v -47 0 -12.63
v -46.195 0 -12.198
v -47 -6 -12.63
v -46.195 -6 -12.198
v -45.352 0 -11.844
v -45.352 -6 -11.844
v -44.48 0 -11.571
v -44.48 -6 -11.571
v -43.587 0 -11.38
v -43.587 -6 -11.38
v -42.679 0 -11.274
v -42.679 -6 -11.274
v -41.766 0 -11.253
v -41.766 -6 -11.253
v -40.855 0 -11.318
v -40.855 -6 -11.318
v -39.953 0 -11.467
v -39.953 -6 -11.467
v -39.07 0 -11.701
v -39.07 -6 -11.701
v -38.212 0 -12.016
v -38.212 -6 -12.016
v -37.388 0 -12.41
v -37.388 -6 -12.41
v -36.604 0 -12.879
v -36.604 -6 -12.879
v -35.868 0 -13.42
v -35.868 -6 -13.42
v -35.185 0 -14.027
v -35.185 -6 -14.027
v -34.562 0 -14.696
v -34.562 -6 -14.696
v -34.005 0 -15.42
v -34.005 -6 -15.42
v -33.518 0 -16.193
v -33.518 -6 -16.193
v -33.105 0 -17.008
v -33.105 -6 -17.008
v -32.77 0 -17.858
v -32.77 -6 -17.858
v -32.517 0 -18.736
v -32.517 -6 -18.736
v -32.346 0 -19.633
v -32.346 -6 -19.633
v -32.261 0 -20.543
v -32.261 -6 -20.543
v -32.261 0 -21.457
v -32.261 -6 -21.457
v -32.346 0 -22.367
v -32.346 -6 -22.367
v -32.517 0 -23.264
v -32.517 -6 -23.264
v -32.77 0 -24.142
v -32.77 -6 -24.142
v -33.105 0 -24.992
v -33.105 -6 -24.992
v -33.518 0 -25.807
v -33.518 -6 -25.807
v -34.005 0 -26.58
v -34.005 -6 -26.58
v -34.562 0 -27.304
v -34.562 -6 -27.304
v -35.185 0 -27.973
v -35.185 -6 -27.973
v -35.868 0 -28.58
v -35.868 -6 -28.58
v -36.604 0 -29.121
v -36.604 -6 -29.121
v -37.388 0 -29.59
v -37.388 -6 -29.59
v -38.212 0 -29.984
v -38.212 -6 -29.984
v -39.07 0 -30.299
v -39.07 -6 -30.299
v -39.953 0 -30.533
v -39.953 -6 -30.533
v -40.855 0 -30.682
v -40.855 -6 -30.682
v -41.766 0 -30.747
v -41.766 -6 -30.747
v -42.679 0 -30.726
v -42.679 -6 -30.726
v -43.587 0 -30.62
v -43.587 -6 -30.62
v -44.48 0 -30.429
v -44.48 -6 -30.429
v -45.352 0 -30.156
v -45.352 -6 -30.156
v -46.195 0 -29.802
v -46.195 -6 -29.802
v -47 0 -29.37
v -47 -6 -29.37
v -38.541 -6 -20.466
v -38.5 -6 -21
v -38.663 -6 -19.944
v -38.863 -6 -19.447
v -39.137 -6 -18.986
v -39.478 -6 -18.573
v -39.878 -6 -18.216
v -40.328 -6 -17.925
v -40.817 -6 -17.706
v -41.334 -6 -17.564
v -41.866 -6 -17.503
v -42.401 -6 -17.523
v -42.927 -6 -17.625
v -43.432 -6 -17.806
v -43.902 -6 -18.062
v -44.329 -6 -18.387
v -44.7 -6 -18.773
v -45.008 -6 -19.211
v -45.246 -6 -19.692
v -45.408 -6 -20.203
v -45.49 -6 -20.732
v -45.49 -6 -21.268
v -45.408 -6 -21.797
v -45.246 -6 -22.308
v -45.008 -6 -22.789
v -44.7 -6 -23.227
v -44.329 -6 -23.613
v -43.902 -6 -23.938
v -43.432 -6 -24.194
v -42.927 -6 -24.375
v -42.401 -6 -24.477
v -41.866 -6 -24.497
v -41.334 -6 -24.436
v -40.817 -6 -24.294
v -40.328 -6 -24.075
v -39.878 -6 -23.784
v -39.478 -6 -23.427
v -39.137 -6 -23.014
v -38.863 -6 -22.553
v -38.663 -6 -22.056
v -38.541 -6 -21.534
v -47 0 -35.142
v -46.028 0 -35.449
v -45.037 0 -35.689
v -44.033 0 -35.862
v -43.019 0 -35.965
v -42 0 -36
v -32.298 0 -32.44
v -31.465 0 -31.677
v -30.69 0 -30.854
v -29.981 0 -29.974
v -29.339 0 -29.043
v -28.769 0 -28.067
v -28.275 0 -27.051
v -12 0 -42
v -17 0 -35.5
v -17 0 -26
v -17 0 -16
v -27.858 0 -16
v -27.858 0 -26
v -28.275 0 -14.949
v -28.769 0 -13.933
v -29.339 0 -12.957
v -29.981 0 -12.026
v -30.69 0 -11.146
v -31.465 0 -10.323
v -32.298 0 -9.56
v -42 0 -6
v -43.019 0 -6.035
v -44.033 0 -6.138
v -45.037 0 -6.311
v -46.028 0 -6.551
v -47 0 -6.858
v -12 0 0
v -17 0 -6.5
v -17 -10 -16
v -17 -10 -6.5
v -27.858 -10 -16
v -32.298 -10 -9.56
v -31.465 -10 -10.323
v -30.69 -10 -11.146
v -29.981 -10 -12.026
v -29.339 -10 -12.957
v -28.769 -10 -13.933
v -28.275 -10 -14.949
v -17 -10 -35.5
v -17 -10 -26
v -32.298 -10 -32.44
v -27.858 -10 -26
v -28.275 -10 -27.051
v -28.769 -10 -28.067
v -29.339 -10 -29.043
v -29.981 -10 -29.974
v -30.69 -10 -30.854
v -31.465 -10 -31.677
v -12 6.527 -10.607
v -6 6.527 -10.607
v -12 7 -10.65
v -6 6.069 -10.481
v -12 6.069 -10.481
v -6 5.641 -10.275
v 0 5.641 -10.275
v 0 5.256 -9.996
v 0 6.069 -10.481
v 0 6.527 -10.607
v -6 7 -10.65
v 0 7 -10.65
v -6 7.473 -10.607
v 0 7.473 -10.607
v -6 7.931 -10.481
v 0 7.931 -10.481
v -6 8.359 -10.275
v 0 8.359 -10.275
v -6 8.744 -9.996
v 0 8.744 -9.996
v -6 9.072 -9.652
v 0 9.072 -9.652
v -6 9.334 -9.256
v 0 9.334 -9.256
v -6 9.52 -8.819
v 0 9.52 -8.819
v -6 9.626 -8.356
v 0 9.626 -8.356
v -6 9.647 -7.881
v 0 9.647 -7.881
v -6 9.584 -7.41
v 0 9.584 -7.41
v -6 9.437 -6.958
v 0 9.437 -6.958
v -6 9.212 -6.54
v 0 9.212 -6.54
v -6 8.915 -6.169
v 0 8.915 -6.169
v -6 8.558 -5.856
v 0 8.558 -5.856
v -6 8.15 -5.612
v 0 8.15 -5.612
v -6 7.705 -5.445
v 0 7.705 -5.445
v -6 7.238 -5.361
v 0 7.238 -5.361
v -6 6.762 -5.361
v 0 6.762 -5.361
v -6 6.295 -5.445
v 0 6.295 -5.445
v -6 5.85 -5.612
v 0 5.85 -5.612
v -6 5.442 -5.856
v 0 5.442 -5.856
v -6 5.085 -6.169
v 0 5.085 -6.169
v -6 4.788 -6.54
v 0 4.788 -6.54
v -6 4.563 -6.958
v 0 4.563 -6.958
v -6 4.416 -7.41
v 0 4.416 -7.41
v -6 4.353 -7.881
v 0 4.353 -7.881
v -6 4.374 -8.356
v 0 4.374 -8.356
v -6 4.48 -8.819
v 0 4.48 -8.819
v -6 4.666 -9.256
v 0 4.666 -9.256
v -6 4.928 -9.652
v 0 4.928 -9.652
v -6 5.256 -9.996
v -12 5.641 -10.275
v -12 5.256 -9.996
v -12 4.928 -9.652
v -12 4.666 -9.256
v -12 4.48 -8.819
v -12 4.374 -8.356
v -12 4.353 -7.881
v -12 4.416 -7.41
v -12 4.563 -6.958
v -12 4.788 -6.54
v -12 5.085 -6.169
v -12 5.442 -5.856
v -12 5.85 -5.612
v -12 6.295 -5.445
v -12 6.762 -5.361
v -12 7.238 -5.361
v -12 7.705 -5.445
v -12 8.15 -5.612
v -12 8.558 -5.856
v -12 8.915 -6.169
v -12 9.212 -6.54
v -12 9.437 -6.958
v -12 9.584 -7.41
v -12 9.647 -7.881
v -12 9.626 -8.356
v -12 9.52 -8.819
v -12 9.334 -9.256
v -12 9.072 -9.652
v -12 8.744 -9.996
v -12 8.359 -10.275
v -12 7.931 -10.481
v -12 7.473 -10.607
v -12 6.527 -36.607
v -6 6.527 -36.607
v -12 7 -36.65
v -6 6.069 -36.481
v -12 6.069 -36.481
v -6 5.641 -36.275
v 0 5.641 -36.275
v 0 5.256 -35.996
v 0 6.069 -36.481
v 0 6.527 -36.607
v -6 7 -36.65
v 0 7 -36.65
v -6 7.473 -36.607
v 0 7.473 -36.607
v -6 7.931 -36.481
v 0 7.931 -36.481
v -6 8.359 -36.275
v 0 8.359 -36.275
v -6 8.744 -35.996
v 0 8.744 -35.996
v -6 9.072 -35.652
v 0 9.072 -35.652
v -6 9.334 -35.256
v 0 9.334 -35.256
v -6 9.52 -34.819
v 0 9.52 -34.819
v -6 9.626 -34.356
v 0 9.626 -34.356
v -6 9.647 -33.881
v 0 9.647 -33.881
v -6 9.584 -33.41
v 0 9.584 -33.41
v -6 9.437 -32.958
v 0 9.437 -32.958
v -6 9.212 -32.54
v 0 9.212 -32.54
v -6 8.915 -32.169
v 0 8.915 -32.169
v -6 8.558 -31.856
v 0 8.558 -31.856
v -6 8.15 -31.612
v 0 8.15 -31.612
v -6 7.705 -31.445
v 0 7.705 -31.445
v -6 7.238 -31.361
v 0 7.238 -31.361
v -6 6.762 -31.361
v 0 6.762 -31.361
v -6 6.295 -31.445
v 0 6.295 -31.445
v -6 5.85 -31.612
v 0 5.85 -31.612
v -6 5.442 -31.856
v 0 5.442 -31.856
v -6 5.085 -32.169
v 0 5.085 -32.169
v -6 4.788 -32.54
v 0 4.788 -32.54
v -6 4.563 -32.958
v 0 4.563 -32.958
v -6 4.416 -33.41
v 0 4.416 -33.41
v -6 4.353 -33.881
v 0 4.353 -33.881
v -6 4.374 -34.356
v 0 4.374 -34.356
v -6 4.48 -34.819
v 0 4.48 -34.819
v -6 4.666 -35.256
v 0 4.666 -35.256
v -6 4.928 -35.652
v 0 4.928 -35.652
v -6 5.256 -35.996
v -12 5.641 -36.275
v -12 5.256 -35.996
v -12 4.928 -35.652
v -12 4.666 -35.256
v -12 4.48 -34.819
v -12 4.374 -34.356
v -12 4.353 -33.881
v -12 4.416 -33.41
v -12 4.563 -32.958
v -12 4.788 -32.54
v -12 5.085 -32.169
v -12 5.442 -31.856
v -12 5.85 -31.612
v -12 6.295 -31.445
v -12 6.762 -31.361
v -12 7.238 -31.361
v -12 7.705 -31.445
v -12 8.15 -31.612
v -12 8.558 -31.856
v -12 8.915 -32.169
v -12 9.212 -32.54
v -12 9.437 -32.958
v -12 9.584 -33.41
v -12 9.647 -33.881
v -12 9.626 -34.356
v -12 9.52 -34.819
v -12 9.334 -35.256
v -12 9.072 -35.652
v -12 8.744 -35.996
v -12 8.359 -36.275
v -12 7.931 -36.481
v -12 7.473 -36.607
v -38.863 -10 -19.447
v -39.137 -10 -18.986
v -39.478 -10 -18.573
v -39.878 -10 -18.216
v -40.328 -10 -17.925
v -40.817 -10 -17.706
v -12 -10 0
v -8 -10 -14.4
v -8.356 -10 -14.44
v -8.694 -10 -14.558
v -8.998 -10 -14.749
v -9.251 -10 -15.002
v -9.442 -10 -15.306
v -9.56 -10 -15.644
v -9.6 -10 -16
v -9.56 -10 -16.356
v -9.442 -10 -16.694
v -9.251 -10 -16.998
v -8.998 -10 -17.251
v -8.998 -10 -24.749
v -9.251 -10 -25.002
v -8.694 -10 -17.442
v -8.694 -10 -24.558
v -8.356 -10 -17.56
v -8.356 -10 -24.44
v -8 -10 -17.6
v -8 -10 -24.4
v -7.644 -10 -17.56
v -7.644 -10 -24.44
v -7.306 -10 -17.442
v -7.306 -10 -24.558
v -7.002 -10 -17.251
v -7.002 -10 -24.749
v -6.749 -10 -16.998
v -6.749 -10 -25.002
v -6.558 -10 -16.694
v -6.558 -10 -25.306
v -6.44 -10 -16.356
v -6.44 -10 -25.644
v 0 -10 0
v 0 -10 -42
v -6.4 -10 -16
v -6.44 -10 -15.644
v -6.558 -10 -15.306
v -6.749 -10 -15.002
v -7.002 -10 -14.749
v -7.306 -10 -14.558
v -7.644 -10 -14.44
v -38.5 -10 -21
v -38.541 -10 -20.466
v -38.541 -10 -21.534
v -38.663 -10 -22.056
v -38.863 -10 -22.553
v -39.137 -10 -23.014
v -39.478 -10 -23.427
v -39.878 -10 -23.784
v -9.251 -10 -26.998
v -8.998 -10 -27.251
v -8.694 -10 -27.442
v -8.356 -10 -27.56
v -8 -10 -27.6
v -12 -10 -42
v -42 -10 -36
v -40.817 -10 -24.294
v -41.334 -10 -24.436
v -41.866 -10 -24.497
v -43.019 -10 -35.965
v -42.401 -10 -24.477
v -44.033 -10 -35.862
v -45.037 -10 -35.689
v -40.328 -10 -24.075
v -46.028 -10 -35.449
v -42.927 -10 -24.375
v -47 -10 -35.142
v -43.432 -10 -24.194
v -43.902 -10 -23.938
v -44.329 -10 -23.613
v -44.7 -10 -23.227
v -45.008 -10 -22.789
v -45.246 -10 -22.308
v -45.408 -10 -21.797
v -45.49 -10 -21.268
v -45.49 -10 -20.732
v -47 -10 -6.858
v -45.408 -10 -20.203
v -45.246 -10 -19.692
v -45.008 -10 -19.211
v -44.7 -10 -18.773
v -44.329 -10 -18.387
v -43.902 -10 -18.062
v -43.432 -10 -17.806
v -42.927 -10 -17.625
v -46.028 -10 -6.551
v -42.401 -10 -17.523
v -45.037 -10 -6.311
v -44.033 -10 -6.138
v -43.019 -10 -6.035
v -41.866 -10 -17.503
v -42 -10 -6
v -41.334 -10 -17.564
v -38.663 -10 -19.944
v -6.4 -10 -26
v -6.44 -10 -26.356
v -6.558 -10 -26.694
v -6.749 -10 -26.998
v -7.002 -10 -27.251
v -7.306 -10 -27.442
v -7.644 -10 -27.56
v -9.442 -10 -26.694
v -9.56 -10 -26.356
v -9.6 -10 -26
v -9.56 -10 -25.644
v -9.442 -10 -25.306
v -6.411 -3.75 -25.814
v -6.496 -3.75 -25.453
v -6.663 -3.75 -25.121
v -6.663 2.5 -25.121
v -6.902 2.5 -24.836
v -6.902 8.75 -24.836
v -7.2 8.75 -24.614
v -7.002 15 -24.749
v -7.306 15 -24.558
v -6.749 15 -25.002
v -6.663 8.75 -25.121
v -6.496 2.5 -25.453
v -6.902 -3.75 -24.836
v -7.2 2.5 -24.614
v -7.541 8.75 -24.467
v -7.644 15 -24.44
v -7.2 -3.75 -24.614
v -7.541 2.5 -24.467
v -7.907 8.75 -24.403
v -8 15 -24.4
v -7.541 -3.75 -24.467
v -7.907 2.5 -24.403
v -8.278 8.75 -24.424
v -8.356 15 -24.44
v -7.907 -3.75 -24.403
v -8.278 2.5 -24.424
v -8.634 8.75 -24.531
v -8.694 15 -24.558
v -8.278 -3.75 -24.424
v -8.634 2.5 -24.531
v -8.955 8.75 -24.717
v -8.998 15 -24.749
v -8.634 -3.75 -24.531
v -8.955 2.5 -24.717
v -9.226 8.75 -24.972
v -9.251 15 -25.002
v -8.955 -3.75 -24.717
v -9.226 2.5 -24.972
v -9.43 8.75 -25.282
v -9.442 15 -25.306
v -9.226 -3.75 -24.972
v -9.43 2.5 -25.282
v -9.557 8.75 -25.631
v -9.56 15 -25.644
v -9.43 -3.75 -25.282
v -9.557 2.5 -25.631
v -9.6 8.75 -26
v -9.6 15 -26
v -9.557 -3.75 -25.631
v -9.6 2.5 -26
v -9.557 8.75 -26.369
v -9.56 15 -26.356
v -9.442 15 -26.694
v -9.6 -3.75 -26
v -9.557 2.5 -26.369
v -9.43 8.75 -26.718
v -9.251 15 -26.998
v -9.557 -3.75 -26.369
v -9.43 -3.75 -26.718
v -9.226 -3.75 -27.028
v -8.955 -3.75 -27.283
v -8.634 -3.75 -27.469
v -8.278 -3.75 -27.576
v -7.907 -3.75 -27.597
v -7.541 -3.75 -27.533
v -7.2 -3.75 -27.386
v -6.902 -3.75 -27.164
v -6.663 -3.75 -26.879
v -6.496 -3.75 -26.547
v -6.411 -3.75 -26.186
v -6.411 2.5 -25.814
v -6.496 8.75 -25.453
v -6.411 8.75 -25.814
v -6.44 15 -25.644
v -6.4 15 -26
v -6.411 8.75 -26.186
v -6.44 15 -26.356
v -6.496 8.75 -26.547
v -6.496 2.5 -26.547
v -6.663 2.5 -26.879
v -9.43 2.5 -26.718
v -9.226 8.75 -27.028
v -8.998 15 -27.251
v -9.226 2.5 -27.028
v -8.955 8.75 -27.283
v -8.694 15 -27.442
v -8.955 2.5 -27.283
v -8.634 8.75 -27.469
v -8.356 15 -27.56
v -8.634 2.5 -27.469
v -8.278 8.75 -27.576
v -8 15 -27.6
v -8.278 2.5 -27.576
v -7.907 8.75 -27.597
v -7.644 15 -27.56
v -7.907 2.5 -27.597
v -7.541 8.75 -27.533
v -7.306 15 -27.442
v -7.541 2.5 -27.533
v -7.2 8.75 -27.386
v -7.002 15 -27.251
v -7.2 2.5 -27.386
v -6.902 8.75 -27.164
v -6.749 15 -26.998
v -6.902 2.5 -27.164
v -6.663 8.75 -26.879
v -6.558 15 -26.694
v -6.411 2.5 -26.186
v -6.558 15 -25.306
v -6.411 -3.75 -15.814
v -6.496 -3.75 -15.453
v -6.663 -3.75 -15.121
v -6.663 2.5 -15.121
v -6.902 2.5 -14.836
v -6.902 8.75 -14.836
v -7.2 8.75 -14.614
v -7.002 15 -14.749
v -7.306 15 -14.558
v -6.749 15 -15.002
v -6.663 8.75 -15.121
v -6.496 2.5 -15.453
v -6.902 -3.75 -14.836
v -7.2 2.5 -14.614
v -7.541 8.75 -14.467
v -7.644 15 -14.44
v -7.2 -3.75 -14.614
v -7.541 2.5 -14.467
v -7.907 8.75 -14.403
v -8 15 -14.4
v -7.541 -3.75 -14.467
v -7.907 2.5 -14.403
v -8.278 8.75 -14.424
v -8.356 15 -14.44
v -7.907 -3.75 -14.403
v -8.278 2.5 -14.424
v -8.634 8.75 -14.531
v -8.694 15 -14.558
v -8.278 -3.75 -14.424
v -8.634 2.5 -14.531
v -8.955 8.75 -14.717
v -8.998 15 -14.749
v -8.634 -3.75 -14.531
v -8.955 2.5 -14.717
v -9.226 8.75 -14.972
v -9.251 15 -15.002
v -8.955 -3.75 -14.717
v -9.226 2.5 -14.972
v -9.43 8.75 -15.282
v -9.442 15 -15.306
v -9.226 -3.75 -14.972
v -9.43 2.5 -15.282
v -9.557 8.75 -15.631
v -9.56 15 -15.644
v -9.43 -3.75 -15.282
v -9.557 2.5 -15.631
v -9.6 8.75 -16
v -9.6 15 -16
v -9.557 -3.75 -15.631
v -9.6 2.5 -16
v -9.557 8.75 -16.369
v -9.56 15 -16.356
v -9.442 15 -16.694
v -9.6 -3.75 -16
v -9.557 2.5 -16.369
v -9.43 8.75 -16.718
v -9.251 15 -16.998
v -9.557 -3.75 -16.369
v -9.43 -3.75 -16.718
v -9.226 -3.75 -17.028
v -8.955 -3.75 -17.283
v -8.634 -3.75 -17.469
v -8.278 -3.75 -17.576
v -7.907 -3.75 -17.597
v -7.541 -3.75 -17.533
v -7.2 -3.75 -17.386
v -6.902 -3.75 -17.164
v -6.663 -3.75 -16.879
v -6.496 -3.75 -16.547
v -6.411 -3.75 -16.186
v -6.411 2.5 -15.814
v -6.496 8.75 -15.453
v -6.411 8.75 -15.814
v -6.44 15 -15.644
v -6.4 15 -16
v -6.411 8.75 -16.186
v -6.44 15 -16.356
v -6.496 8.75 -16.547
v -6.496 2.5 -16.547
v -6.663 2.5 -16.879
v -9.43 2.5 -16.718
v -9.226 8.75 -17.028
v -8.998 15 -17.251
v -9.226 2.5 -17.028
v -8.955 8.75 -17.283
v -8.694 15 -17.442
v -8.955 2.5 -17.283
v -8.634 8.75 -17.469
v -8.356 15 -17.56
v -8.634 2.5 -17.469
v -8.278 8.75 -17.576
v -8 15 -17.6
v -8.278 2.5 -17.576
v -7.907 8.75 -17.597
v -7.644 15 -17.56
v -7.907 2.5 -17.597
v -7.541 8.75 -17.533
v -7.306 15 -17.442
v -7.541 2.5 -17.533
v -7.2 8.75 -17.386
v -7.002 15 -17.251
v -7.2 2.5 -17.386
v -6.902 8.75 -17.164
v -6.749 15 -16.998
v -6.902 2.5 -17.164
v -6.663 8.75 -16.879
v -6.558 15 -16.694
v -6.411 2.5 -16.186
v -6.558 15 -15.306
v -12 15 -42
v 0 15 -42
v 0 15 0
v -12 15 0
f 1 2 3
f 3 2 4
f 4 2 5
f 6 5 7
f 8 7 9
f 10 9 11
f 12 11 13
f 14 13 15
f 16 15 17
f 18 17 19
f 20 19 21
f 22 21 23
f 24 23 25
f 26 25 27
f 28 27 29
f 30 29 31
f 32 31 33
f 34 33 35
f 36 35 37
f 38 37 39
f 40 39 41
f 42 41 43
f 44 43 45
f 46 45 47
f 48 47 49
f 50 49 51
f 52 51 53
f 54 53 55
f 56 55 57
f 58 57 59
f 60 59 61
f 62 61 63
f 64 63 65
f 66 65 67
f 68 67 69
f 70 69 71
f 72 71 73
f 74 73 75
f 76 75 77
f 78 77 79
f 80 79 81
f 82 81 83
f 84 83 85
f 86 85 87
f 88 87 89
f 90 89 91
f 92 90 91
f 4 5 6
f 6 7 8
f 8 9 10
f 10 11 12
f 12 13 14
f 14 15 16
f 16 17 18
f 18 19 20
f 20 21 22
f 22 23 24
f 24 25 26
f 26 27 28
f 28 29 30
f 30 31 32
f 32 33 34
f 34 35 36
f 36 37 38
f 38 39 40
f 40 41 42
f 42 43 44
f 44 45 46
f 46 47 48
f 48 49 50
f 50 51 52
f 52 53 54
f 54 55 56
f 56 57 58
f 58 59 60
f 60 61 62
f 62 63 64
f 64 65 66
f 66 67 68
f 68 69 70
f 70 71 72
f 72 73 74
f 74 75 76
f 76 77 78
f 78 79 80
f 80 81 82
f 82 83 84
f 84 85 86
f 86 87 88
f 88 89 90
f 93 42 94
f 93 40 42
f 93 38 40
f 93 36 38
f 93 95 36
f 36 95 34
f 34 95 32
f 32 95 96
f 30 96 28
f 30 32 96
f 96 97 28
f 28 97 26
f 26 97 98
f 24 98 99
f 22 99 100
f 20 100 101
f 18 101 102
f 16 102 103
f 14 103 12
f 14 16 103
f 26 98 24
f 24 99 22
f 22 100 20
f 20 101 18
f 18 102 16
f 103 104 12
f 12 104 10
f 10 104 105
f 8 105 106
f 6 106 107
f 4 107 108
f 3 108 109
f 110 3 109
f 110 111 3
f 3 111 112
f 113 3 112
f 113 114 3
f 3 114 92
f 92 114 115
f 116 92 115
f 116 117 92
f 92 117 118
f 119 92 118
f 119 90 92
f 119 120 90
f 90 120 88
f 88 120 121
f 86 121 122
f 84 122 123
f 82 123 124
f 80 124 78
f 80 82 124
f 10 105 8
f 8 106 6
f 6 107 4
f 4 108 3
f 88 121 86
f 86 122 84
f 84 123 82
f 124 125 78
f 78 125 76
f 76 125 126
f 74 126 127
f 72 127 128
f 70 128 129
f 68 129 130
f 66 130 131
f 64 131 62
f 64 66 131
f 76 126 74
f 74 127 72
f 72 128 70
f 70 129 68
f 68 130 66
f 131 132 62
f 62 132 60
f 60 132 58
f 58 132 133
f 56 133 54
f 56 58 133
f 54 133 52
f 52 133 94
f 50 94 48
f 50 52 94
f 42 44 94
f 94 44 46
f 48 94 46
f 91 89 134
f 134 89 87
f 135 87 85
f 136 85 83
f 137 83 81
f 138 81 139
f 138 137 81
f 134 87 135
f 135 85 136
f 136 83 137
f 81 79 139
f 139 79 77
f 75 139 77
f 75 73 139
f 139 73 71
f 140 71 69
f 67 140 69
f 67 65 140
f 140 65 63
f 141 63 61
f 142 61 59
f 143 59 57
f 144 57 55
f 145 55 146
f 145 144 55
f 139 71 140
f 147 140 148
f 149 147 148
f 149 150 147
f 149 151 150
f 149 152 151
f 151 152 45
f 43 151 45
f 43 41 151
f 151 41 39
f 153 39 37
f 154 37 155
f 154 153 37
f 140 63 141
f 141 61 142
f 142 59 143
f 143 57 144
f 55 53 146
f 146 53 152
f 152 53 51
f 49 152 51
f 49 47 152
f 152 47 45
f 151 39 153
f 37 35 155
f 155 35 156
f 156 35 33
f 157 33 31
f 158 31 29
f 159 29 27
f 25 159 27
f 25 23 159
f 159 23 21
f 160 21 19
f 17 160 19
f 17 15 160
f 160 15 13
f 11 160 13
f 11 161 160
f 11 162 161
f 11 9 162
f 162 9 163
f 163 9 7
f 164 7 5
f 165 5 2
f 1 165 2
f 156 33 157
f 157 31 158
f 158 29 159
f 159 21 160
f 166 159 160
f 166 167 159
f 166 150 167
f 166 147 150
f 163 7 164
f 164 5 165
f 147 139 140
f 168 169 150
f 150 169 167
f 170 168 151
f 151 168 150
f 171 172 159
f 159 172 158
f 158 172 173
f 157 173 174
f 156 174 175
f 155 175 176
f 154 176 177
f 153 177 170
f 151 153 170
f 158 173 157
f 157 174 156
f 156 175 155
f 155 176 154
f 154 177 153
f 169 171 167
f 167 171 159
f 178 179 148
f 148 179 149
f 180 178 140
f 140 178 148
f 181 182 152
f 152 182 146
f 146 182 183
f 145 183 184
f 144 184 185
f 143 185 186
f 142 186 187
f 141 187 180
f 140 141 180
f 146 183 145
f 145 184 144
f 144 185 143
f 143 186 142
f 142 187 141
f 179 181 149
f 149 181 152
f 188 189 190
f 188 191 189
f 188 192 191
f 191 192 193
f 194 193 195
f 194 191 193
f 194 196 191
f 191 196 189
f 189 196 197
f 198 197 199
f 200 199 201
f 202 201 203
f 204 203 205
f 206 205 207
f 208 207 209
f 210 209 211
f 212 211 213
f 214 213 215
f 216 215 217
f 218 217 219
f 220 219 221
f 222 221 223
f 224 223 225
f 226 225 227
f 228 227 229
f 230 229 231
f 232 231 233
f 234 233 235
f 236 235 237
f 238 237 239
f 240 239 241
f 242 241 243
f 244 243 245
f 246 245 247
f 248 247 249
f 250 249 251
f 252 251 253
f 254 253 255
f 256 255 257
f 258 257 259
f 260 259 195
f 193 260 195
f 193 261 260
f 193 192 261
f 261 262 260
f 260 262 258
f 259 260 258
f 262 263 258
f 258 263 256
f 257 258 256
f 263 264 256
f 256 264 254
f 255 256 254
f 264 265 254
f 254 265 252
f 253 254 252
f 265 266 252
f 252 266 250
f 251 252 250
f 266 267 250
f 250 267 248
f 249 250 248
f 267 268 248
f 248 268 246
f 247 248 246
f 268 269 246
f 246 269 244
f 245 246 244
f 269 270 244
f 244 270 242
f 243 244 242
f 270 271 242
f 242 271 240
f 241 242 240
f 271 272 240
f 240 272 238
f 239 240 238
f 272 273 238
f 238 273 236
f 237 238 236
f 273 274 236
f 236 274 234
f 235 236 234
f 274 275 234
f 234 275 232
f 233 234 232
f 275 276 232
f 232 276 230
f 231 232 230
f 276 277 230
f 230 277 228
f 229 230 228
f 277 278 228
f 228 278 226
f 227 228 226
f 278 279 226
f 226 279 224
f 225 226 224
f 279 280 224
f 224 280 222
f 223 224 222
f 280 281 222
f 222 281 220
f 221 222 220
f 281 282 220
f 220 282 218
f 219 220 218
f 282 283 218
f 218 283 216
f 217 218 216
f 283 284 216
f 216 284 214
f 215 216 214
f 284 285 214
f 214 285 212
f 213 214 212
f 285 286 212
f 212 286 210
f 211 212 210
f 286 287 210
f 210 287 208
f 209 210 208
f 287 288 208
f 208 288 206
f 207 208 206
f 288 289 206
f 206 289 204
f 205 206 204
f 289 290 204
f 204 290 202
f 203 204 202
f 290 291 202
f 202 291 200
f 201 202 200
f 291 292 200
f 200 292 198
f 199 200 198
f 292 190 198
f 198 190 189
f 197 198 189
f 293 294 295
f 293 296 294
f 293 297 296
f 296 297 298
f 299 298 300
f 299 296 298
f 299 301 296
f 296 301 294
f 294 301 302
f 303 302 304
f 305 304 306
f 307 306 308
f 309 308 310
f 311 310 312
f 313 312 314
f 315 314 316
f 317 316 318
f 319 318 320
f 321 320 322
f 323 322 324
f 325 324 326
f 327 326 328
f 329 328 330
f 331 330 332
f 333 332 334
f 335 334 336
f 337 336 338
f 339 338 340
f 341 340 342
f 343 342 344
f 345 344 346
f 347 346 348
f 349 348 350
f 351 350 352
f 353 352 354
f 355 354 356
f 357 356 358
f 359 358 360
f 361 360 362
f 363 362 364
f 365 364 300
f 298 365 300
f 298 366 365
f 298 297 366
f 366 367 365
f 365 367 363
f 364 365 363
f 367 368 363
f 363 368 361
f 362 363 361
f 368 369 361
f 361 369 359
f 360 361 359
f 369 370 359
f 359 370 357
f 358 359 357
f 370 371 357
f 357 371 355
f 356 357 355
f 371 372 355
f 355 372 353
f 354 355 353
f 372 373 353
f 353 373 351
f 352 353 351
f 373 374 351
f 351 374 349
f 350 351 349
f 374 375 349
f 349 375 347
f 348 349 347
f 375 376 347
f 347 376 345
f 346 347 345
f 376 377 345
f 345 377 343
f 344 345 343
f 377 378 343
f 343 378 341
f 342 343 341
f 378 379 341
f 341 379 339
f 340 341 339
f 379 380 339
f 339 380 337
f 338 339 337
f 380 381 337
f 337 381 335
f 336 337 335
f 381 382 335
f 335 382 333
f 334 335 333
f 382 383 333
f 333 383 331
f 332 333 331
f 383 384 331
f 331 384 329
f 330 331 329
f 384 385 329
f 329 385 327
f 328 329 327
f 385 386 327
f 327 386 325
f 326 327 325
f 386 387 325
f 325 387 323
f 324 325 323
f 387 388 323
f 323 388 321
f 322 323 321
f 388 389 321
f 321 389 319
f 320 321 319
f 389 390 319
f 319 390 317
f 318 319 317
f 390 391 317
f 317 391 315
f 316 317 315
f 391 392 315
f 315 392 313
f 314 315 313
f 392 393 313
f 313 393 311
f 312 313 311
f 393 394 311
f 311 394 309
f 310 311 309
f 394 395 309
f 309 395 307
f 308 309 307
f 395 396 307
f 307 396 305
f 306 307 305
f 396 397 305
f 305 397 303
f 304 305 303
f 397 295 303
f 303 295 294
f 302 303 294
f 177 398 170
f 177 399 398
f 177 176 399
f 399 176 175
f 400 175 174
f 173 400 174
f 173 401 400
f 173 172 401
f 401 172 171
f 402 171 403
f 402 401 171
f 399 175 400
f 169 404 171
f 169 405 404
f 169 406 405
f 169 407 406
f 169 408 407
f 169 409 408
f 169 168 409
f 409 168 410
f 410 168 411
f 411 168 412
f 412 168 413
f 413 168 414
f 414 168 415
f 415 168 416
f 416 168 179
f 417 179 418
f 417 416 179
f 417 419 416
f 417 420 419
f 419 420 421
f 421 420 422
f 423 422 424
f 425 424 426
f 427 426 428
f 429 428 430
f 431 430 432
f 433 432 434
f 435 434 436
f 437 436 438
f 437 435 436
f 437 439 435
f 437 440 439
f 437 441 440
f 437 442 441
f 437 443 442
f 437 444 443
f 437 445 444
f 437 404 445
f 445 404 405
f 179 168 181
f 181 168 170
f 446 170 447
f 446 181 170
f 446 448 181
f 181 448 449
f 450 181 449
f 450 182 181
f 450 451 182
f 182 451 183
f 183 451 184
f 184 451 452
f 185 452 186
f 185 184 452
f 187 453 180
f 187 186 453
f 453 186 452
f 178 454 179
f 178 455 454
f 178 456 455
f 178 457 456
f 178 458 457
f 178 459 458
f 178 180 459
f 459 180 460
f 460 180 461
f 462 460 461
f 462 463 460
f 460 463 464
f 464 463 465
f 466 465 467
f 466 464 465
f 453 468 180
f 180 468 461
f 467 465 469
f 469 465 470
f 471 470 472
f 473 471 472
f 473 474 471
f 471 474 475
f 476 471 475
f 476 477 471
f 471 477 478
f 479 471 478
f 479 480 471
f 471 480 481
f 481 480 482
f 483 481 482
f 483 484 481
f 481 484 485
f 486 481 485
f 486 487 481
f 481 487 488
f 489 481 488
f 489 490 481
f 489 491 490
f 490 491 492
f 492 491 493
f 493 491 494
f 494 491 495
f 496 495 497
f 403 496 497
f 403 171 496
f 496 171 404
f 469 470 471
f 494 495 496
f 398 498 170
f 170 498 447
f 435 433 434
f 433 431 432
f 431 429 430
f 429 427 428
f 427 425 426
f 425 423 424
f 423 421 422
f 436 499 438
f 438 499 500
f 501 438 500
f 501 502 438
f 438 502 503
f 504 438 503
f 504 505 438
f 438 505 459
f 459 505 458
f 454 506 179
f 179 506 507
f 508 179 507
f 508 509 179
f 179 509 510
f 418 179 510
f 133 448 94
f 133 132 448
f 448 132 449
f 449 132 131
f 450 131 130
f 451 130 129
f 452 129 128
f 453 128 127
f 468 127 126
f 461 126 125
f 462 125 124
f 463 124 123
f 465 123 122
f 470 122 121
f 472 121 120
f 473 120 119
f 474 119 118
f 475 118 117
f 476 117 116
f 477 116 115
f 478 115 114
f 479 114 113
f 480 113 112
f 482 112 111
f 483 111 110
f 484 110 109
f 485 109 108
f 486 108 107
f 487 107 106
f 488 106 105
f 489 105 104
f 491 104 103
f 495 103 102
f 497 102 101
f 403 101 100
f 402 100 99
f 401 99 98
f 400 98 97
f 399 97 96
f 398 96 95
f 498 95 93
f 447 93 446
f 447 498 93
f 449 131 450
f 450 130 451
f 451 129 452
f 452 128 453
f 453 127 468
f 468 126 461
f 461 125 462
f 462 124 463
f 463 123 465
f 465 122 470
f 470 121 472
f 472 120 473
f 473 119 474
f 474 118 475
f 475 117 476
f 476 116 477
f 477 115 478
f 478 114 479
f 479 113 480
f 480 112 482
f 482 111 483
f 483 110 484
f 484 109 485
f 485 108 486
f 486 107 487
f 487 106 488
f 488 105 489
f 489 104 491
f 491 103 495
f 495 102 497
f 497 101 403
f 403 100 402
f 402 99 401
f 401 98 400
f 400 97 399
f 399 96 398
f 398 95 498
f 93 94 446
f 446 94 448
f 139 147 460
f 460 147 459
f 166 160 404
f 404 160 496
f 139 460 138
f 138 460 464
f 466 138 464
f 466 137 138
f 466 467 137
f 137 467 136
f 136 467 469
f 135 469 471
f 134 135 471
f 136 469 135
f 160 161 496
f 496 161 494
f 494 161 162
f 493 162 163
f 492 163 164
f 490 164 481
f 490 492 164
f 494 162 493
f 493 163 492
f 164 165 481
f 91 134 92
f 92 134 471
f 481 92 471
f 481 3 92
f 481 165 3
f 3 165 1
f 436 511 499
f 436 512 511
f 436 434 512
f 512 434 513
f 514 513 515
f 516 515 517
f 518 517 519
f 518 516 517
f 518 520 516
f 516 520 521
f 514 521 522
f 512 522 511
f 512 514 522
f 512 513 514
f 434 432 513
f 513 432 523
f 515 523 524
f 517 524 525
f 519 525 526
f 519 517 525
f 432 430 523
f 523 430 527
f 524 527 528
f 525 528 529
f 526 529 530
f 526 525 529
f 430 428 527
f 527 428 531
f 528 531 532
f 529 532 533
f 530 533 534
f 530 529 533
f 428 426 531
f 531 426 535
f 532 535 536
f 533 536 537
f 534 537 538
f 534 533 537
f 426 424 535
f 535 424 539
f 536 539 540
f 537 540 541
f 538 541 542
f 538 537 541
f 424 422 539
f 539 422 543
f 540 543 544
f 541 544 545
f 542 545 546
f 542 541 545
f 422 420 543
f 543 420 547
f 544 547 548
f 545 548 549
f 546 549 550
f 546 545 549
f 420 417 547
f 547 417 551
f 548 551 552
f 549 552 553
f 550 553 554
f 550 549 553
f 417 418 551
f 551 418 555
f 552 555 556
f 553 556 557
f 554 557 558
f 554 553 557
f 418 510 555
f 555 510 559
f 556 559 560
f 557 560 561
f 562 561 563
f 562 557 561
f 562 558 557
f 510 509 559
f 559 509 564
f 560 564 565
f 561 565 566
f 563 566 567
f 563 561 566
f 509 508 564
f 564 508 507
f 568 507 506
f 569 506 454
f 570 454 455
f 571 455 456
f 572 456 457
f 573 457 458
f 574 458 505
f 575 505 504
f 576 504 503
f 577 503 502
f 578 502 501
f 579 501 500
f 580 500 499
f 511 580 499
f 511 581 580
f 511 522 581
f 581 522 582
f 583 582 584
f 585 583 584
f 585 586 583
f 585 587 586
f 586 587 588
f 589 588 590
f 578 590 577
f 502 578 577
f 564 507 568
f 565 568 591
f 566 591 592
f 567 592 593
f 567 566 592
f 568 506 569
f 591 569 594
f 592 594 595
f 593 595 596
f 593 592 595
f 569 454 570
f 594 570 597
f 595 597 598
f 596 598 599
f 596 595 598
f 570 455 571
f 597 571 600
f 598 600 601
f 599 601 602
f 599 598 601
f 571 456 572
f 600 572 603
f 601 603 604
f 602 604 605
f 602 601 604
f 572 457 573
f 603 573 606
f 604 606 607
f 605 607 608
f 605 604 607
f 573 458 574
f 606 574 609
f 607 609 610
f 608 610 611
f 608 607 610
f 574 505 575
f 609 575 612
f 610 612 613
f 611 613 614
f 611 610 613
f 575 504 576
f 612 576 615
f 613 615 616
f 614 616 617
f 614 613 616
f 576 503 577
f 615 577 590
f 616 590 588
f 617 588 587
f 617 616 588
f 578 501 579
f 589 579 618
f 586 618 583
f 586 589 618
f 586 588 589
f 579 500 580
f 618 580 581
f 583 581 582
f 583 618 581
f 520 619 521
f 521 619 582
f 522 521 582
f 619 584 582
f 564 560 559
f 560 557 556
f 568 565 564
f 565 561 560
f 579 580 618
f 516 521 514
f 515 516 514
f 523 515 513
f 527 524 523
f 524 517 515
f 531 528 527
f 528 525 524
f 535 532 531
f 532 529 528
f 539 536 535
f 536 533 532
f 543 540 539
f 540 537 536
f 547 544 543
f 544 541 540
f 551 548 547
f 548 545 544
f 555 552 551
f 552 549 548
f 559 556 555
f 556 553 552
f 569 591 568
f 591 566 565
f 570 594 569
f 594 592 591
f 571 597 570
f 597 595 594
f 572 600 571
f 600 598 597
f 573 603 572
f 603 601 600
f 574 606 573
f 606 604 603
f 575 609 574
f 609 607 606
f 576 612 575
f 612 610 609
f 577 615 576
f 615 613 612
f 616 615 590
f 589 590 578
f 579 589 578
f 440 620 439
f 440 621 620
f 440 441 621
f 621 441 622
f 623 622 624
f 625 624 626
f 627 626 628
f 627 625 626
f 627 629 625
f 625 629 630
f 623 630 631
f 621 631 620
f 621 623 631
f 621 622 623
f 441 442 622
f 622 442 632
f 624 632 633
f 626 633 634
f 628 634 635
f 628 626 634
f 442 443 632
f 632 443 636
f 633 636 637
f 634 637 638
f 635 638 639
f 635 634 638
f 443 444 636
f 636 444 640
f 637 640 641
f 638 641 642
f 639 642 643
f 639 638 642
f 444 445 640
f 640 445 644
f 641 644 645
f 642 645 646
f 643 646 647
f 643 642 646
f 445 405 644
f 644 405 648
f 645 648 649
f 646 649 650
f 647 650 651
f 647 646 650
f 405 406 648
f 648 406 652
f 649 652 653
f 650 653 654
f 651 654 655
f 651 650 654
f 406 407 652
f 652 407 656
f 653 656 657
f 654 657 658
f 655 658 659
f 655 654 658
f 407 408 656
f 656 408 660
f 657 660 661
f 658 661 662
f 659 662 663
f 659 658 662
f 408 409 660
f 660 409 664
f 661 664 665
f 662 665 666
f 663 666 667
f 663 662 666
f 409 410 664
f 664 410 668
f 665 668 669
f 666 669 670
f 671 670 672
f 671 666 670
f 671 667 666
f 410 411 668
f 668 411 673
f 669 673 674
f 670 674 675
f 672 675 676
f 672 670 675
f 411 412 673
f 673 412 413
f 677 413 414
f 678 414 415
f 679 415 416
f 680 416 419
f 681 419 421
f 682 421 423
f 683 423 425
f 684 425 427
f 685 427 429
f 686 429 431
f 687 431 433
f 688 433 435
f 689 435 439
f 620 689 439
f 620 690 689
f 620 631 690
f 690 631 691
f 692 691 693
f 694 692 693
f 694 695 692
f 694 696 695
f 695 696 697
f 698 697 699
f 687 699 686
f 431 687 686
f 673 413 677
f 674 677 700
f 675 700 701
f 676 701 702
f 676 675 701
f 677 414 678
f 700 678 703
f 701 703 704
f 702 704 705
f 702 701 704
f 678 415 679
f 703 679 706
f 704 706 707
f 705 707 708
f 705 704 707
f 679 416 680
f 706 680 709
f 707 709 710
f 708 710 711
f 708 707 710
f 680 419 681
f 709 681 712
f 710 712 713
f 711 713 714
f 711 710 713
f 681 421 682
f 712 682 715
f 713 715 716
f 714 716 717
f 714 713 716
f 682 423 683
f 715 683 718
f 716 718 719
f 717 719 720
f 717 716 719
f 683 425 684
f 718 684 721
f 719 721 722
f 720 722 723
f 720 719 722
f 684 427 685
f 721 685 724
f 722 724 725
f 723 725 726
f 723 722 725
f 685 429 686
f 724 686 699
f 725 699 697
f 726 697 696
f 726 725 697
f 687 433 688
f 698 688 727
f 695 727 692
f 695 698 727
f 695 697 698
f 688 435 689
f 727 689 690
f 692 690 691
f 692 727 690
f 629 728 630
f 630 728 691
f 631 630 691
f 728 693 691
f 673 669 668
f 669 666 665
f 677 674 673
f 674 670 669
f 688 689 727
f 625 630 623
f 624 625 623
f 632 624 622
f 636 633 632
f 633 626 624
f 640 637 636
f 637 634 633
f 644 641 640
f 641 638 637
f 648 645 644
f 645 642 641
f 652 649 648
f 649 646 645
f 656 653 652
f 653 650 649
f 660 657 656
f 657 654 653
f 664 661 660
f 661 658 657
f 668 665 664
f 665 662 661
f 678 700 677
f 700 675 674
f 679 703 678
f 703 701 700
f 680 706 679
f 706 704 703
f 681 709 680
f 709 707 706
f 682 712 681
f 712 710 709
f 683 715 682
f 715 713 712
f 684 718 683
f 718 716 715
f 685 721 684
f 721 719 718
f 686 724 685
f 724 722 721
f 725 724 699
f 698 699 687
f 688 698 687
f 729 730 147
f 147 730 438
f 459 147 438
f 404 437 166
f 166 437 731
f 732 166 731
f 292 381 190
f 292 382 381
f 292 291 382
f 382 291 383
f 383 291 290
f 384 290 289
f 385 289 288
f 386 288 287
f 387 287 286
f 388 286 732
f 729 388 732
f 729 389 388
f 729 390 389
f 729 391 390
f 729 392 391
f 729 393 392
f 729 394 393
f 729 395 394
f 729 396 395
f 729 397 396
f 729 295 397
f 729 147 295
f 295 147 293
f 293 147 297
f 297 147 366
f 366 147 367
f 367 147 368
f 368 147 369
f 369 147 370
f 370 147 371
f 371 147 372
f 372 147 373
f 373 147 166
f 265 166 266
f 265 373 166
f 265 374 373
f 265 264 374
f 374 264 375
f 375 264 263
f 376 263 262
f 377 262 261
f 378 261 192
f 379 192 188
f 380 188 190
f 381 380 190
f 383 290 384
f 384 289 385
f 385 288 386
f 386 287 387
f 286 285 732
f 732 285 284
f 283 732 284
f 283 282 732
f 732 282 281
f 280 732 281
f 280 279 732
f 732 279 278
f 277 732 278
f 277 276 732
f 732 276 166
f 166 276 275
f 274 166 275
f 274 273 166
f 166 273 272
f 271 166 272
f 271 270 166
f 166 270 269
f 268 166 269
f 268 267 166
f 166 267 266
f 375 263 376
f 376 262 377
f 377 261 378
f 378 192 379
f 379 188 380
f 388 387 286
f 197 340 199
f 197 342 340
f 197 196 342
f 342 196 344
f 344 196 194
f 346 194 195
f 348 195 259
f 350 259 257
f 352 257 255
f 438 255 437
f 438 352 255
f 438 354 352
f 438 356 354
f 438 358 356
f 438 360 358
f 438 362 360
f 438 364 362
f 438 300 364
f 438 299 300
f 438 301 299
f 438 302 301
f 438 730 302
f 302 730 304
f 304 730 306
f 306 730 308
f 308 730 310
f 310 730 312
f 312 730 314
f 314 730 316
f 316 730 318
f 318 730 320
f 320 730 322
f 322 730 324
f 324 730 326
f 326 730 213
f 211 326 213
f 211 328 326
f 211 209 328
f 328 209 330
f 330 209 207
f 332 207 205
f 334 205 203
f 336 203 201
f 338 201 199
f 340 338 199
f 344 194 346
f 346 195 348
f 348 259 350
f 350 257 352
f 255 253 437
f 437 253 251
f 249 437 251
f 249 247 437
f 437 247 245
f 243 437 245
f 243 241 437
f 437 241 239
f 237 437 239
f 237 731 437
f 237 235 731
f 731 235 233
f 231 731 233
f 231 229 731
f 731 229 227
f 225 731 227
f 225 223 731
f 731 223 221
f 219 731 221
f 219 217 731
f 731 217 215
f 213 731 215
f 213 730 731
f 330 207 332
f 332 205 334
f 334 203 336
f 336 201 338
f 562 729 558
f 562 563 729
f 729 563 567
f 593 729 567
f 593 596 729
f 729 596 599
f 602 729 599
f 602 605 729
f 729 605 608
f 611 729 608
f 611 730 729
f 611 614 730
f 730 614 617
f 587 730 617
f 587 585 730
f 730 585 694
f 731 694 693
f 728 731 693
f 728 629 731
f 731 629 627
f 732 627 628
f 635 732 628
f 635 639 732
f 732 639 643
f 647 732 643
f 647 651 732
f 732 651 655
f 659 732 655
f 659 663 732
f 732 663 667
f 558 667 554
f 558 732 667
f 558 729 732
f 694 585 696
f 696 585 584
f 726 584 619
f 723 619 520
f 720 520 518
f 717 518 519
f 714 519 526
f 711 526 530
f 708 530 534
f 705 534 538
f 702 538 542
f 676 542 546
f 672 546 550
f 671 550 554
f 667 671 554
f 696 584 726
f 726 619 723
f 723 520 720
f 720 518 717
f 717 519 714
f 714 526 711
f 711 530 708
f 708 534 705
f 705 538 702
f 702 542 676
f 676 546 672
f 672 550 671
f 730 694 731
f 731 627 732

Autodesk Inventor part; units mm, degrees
ref_plane "YZ Plane" through (0, 0, 0) normal (1, 0, 0) x (0, 1, 0)
ref_plane "XZ Plane" through (0, 0, 0) normal (0, 1, 0) x (-1, 0, 0)
ref_plane "XY Plane" through (0, 0, 0) normal (0, 0, 1) x (1, 0, 0)
sketch "Sketch1" plane through (0, 0, 0) normal (0, 1, 0) x (-1, 0, 0)
  line L0 (0, 0) -> (0, -42)
  line L1 (0, -42) -> (12, -42)
  line L2 (12, -42) -> (12, 0)
  line L3 (12, 0) -> (0, 0)
  line L4 (0, -21) -> (0, -26)
  line L5 (0, -21) -> (0, -16)
  line L6 (0, -16) -> (0, -19)
  line L7 (0, -16) -> (0, -13)
  line L8 (0, -26) -> (0, -23)
  line L9 (0, -26) -> (0, -29)
  line L10 (0, -29) -> (12, -29)
  line L11 (0, -13) -> (12, -13)
  line L12 (6.4, -16) -> (12, -16)
  line L13 (6.4, -26) -> (12, -26)
  line L14 (12, -16) -> (8, -16)
  circle A0 centre (8, -16) radius 1.6
  circle A1 centre (8, -26) radius 1.6
  line L15 (12, -26) -> (8, -26)
  dimension "d9" = 3.2
  dimension "d10" = 3.2
  dimension "d0" = 42
  dimension "d1" = 12
  dimension "d2" = 5
  dimension "d3" = 5
  dimension "d4" = 3
  dimension "d5" = 3
  dimension "d6" = 3
  dimension "d7" = 3
  dimension "d8" = 4
extrude "Extrusion1" add sketch "Sketch1" along normal blind 15
sketch "Sketch2" plane through (0, 0, 0) normal (0, -1, 0) x (1, 0, 0)
  line L0 (-12, 0) -> (-12, -42)
  line L1 (-12, -42) -> (-12, 0) projected
  line L2 (-12, -21) -> (-42, -21)
  circle A0 centre (-42, -21) radius 3.5
  arc A1 (-47, -35.1421) -> (-47, -6.8579) centre (-42, -21) ccw
  line L3 (-42, -21) -> (-47, -21)
  line L4 (-47, -21) -> (-47, -35.1421)
  line L5 (-47, -21) -> (-47, -6.8579)
  line L6 (-42, -36) -> (-12, -42)
  line L7 (-42, -6) -> (-12, 0)
  line L8 (-12, -42) -> (0, -42)
  line L9 (0, -42) -> (0, 0)
  line L10 (0, 0) -> (0, -42) projected
  line L11 (0, 0) -> (-12, 0)
  circle A2 centre (-8, -16) radius 1.6 projected
  circle A3 centre (-8, -16) radius 1.6
  circle A4 centre (-8, -26) radius 1.6 projected
  circle A5 centre (-8, -26) radius 1.6
  line L12 (-12, -42) -> (-12, -36.5)
  line L13 (-12, 0) -> (-12, -5.5)
  line L14 (-17, -6.5) -> (-32.2985, -9.5597)
  line L15 (-32.2985, -32.4403) -> (-17, -35.5)
  circle A6 centre (-42, -21) radius 5
  line L16 (-12, -21) -> (-17, -21)
  line L17 (-17, -16) -> (-17, -6.5)
  line L18 (-17, -26) -> (-17, -35.5)
  line L19 (-42, -16) -> (-33.9223, -16)
  line L20 (-27.8579, -16) -> (-12, -16)
  line L21 (-42, -26) -> (-33.9223, -26)
  line L22 (-27.8579, -26) -> (-12, -26)
  arc A7 (-47, -29.3703) -> (-47, -12.6297) centre (-42, -21) ccw
  point P0 (-47, -12.9223)
  point P1 (-47, -29.0777)
  dimension "d13" = 30
  dimension "d14" = 7
  dimension "d16" = 30
  dimension "d17" = 5
  dimension "d30" = 5.5
  dimension "d31" = 5.5
  dimension "d32" = 10
  dimension "d33" = 5
  dimension "d36" = 19.5
extrude "Extrusion2" add sketch "Sketch2" along normal blind 10 contours L11 L9 L8 L0 | L0 L20 L17 L14 A1 L7 | A1 L2 A7 L5 | L0 L2 A1 L20 | L14 L17 L20 A1 | L0 L22 A1 L2 | A7 L2 A6 L5 | L6 A1 L15 L18 L22 L0 | A1 L4 A7 L2 | A6 L2 A0 L3 | A6 L2 A7 L4 | L3 A0 L2 A6 | L18 L15 A1 L22
sketch "Sketch3" plane through (0, 15, 0) normal (1, 0, 0) x (0, 0, -1)
  line L0 (0, -15) -> (42, -15)
  line L1 (42, -15) -> (0, -15) projected
  line L2 (21, -15) -> (34, -15)
  line L3 (34, -15) -> (34, -8)
  line L4 (21, -15) -> (8, -15)
  line L5 (8, -15) -> (8, -8)
  circle A0 centre (8, -8) radius 2.65
  circle A1 centre (34, -8) radius 2.65
  dimension "d22" = 13
  dimension "d23" = 7
  dimension "d24" = 13
  dimension "d25" = 7
  dimension "d26" = 5.3
  dimension "d27" = 5.3
extrude "Extrusion4" cut sketch "Sketch3" against normal blind 15
extrude "Extrusion5" cut sketch "Sketch2" along normal blind 15 contours L14 L17 L20 A1 | L18 L15 A1 L22
extrude "Extrusion6" cut sketch "Sketch2" along normal blind 6 contours A7 L2 A6 L5 | A6 L2 A0 L3 | A6 L2 A7 L4 | L3 A0 L2 A6
properties part number "servo_clip_holder2"
